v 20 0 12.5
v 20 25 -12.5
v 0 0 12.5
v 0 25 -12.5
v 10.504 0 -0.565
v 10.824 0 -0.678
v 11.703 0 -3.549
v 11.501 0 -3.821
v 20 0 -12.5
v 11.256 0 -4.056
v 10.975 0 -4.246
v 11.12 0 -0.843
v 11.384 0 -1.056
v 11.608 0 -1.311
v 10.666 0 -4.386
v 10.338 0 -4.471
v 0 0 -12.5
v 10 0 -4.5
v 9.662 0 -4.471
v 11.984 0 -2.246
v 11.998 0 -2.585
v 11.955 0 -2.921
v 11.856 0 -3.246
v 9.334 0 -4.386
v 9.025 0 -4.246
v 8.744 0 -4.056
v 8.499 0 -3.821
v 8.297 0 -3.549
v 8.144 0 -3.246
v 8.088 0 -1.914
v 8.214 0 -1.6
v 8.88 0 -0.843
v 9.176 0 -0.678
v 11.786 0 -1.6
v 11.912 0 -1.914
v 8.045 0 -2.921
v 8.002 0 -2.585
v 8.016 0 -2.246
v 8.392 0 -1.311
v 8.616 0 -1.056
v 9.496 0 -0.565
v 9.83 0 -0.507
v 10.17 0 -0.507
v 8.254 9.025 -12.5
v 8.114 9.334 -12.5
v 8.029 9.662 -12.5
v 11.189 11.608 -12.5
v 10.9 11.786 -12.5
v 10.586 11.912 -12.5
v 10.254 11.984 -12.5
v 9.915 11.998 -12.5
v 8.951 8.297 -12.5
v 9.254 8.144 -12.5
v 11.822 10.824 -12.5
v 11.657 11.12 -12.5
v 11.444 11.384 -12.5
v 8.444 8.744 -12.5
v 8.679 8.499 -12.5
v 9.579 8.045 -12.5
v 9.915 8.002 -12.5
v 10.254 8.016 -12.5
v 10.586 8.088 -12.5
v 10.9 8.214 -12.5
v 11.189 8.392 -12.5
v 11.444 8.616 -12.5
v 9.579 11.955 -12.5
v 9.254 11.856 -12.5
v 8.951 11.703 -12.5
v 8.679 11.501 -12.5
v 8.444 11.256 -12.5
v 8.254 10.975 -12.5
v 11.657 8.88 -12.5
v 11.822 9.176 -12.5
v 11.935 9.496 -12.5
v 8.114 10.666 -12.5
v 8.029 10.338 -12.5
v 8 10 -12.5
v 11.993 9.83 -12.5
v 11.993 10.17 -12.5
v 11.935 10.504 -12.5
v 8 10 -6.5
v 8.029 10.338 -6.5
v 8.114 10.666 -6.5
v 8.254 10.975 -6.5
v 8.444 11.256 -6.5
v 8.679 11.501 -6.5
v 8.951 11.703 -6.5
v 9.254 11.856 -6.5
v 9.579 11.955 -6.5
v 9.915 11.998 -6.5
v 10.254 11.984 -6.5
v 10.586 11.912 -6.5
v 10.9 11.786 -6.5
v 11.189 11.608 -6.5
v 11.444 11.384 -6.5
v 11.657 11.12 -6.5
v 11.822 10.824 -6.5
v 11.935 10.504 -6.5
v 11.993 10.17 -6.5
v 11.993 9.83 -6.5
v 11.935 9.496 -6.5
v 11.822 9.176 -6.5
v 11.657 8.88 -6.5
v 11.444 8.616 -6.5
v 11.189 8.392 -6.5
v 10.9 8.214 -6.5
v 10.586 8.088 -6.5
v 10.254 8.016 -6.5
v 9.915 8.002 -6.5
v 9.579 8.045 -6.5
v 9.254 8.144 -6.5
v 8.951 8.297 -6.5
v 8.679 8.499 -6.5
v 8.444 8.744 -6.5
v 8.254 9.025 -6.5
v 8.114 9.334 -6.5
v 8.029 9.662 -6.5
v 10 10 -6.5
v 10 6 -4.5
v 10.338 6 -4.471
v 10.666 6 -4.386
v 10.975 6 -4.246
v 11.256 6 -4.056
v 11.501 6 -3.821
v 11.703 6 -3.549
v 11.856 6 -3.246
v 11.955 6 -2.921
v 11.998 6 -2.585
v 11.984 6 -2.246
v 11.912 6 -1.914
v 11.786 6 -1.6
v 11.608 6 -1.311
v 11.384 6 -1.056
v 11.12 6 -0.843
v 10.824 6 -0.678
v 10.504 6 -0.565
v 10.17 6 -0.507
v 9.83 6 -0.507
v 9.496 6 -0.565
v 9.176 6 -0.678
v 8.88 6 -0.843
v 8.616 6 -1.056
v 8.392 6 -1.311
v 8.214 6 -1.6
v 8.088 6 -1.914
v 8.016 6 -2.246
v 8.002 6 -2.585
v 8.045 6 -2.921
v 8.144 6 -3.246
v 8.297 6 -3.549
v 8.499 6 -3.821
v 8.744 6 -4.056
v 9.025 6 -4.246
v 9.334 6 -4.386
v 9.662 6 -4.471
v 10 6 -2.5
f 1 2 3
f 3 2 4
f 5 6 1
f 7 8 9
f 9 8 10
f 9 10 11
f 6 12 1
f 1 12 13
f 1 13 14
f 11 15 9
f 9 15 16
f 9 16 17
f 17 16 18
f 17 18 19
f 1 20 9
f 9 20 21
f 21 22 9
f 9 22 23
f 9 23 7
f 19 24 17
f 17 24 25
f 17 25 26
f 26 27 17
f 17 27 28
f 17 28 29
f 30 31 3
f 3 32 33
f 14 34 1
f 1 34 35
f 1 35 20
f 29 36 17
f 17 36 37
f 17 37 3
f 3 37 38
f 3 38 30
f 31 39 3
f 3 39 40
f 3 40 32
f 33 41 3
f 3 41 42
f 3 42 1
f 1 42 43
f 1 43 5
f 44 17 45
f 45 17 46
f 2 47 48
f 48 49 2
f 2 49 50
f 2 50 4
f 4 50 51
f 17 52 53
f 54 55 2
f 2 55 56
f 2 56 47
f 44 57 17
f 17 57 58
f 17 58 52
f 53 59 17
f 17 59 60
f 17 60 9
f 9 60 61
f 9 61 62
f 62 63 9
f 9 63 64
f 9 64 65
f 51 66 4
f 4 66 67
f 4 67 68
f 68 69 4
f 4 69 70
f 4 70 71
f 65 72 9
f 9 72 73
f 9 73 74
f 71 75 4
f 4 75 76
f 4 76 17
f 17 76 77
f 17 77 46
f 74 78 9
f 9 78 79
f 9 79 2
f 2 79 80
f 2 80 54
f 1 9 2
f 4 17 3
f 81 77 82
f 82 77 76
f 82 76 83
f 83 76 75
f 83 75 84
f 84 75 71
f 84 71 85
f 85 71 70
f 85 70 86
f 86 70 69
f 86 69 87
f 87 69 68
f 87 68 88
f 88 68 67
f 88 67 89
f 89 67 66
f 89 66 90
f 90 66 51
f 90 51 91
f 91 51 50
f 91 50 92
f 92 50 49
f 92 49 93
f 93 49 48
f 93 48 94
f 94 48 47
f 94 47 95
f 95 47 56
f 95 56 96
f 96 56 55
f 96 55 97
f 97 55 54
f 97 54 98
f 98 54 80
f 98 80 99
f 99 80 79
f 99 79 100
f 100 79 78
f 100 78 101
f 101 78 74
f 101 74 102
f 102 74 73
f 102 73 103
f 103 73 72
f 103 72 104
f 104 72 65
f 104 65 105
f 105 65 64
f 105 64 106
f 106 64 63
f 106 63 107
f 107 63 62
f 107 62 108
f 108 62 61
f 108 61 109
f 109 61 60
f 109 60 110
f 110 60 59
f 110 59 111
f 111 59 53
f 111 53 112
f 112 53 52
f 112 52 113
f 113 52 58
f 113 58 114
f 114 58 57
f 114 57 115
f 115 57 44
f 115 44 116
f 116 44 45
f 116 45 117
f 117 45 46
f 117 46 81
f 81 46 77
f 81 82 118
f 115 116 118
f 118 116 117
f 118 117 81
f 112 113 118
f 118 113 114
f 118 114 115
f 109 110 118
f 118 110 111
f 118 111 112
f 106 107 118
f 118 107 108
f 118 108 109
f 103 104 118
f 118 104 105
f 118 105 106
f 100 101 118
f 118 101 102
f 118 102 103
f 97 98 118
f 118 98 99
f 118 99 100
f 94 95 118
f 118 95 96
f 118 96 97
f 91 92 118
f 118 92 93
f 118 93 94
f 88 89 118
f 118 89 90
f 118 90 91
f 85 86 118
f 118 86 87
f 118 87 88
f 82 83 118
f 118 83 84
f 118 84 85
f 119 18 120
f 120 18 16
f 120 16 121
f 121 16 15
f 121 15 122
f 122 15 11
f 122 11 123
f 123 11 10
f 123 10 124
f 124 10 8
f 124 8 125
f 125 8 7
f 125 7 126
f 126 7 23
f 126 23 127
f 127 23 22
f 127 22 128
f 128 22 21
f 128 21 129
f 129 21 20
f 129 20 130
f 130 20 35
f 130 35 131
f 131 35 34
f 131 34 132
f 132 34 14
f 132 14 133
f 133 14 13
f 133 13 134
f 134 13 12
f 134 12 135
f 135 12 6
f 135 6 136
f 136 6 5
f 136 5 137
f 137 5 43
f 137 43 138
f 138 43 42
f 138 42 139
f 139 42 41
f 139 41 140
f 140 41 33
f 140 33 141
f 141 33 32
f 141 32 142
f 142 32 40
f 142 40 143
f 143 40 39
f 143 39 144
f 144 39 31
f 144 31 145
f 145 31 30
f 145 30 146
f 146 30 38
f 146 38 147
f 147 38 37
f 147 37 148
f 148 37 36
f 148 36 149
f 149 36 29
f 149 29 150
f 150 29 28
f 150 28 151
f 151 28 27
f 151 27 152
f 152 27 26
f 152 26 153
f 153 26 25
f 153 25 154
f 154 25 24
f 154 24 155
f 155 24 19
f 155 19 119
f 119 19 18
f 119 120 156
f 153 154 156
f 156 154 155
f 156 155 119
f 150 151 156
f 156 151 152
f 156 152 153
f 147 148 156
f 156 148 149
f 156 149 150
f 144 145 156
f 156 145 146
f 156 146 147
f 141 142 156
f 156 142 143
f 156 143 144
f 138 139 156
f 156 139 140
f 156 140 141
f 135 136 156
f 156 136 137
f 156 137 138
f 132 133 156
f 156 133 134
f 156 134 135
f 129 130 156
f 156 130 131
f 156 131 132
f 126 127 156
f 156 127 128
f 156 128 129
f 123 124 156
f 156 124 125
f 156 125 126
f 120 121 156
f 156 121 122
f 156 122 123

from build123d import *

# Parameters (mm, degrees)
BOSS_EXTRUDE1_DEPTH = 20
SKETCH3_R           = 2
CUT_EXTRUDE1_DEPTH  = 6
SKETCH4_R           = 2
CUT_EXTRUDE2_DEPTH  = 6


with BuildPart() as part:
    # Sketch2 → Boss-Extrude1 (new body)
    with BuildSketch(Plane(origin=(0, 0, 0), x_dir=(0, 0, -1), z_dir=(1, 0, 0))):
        Polygon((-12.5, 0), (12.5, 0), (12.5, 25), align=None)
    extrude(amount=BOSS_EXTRUDE1_DEPTH)

    # Sketch3 → Cut-Extrude1 (cut)
    with BuildSketch(Plane(origin=(0, 0, -12.5), x_dir=(-1, 0, 0), z_dir=(0, 0, -1))):
        with Locations((-10, 10)):
            Circle(SKETCH3_R)
    extrude(amount=-CUT_EXTRUDE1_DEPTH, mode=Mode.SUBTRACT)

    # Sketch4 → Cut-Extrude2 (cut)
    with BuildSketch(Plane.XZ):
        with Locations(Location((10, -2.5, 0), (0, 0, 270))):
            Circle(SKETCH4_R)
    extrude(amount=-CUT_EXTRUDE2_DEPTH, mode=Mode.SUBTRACT)


solid = part.part
